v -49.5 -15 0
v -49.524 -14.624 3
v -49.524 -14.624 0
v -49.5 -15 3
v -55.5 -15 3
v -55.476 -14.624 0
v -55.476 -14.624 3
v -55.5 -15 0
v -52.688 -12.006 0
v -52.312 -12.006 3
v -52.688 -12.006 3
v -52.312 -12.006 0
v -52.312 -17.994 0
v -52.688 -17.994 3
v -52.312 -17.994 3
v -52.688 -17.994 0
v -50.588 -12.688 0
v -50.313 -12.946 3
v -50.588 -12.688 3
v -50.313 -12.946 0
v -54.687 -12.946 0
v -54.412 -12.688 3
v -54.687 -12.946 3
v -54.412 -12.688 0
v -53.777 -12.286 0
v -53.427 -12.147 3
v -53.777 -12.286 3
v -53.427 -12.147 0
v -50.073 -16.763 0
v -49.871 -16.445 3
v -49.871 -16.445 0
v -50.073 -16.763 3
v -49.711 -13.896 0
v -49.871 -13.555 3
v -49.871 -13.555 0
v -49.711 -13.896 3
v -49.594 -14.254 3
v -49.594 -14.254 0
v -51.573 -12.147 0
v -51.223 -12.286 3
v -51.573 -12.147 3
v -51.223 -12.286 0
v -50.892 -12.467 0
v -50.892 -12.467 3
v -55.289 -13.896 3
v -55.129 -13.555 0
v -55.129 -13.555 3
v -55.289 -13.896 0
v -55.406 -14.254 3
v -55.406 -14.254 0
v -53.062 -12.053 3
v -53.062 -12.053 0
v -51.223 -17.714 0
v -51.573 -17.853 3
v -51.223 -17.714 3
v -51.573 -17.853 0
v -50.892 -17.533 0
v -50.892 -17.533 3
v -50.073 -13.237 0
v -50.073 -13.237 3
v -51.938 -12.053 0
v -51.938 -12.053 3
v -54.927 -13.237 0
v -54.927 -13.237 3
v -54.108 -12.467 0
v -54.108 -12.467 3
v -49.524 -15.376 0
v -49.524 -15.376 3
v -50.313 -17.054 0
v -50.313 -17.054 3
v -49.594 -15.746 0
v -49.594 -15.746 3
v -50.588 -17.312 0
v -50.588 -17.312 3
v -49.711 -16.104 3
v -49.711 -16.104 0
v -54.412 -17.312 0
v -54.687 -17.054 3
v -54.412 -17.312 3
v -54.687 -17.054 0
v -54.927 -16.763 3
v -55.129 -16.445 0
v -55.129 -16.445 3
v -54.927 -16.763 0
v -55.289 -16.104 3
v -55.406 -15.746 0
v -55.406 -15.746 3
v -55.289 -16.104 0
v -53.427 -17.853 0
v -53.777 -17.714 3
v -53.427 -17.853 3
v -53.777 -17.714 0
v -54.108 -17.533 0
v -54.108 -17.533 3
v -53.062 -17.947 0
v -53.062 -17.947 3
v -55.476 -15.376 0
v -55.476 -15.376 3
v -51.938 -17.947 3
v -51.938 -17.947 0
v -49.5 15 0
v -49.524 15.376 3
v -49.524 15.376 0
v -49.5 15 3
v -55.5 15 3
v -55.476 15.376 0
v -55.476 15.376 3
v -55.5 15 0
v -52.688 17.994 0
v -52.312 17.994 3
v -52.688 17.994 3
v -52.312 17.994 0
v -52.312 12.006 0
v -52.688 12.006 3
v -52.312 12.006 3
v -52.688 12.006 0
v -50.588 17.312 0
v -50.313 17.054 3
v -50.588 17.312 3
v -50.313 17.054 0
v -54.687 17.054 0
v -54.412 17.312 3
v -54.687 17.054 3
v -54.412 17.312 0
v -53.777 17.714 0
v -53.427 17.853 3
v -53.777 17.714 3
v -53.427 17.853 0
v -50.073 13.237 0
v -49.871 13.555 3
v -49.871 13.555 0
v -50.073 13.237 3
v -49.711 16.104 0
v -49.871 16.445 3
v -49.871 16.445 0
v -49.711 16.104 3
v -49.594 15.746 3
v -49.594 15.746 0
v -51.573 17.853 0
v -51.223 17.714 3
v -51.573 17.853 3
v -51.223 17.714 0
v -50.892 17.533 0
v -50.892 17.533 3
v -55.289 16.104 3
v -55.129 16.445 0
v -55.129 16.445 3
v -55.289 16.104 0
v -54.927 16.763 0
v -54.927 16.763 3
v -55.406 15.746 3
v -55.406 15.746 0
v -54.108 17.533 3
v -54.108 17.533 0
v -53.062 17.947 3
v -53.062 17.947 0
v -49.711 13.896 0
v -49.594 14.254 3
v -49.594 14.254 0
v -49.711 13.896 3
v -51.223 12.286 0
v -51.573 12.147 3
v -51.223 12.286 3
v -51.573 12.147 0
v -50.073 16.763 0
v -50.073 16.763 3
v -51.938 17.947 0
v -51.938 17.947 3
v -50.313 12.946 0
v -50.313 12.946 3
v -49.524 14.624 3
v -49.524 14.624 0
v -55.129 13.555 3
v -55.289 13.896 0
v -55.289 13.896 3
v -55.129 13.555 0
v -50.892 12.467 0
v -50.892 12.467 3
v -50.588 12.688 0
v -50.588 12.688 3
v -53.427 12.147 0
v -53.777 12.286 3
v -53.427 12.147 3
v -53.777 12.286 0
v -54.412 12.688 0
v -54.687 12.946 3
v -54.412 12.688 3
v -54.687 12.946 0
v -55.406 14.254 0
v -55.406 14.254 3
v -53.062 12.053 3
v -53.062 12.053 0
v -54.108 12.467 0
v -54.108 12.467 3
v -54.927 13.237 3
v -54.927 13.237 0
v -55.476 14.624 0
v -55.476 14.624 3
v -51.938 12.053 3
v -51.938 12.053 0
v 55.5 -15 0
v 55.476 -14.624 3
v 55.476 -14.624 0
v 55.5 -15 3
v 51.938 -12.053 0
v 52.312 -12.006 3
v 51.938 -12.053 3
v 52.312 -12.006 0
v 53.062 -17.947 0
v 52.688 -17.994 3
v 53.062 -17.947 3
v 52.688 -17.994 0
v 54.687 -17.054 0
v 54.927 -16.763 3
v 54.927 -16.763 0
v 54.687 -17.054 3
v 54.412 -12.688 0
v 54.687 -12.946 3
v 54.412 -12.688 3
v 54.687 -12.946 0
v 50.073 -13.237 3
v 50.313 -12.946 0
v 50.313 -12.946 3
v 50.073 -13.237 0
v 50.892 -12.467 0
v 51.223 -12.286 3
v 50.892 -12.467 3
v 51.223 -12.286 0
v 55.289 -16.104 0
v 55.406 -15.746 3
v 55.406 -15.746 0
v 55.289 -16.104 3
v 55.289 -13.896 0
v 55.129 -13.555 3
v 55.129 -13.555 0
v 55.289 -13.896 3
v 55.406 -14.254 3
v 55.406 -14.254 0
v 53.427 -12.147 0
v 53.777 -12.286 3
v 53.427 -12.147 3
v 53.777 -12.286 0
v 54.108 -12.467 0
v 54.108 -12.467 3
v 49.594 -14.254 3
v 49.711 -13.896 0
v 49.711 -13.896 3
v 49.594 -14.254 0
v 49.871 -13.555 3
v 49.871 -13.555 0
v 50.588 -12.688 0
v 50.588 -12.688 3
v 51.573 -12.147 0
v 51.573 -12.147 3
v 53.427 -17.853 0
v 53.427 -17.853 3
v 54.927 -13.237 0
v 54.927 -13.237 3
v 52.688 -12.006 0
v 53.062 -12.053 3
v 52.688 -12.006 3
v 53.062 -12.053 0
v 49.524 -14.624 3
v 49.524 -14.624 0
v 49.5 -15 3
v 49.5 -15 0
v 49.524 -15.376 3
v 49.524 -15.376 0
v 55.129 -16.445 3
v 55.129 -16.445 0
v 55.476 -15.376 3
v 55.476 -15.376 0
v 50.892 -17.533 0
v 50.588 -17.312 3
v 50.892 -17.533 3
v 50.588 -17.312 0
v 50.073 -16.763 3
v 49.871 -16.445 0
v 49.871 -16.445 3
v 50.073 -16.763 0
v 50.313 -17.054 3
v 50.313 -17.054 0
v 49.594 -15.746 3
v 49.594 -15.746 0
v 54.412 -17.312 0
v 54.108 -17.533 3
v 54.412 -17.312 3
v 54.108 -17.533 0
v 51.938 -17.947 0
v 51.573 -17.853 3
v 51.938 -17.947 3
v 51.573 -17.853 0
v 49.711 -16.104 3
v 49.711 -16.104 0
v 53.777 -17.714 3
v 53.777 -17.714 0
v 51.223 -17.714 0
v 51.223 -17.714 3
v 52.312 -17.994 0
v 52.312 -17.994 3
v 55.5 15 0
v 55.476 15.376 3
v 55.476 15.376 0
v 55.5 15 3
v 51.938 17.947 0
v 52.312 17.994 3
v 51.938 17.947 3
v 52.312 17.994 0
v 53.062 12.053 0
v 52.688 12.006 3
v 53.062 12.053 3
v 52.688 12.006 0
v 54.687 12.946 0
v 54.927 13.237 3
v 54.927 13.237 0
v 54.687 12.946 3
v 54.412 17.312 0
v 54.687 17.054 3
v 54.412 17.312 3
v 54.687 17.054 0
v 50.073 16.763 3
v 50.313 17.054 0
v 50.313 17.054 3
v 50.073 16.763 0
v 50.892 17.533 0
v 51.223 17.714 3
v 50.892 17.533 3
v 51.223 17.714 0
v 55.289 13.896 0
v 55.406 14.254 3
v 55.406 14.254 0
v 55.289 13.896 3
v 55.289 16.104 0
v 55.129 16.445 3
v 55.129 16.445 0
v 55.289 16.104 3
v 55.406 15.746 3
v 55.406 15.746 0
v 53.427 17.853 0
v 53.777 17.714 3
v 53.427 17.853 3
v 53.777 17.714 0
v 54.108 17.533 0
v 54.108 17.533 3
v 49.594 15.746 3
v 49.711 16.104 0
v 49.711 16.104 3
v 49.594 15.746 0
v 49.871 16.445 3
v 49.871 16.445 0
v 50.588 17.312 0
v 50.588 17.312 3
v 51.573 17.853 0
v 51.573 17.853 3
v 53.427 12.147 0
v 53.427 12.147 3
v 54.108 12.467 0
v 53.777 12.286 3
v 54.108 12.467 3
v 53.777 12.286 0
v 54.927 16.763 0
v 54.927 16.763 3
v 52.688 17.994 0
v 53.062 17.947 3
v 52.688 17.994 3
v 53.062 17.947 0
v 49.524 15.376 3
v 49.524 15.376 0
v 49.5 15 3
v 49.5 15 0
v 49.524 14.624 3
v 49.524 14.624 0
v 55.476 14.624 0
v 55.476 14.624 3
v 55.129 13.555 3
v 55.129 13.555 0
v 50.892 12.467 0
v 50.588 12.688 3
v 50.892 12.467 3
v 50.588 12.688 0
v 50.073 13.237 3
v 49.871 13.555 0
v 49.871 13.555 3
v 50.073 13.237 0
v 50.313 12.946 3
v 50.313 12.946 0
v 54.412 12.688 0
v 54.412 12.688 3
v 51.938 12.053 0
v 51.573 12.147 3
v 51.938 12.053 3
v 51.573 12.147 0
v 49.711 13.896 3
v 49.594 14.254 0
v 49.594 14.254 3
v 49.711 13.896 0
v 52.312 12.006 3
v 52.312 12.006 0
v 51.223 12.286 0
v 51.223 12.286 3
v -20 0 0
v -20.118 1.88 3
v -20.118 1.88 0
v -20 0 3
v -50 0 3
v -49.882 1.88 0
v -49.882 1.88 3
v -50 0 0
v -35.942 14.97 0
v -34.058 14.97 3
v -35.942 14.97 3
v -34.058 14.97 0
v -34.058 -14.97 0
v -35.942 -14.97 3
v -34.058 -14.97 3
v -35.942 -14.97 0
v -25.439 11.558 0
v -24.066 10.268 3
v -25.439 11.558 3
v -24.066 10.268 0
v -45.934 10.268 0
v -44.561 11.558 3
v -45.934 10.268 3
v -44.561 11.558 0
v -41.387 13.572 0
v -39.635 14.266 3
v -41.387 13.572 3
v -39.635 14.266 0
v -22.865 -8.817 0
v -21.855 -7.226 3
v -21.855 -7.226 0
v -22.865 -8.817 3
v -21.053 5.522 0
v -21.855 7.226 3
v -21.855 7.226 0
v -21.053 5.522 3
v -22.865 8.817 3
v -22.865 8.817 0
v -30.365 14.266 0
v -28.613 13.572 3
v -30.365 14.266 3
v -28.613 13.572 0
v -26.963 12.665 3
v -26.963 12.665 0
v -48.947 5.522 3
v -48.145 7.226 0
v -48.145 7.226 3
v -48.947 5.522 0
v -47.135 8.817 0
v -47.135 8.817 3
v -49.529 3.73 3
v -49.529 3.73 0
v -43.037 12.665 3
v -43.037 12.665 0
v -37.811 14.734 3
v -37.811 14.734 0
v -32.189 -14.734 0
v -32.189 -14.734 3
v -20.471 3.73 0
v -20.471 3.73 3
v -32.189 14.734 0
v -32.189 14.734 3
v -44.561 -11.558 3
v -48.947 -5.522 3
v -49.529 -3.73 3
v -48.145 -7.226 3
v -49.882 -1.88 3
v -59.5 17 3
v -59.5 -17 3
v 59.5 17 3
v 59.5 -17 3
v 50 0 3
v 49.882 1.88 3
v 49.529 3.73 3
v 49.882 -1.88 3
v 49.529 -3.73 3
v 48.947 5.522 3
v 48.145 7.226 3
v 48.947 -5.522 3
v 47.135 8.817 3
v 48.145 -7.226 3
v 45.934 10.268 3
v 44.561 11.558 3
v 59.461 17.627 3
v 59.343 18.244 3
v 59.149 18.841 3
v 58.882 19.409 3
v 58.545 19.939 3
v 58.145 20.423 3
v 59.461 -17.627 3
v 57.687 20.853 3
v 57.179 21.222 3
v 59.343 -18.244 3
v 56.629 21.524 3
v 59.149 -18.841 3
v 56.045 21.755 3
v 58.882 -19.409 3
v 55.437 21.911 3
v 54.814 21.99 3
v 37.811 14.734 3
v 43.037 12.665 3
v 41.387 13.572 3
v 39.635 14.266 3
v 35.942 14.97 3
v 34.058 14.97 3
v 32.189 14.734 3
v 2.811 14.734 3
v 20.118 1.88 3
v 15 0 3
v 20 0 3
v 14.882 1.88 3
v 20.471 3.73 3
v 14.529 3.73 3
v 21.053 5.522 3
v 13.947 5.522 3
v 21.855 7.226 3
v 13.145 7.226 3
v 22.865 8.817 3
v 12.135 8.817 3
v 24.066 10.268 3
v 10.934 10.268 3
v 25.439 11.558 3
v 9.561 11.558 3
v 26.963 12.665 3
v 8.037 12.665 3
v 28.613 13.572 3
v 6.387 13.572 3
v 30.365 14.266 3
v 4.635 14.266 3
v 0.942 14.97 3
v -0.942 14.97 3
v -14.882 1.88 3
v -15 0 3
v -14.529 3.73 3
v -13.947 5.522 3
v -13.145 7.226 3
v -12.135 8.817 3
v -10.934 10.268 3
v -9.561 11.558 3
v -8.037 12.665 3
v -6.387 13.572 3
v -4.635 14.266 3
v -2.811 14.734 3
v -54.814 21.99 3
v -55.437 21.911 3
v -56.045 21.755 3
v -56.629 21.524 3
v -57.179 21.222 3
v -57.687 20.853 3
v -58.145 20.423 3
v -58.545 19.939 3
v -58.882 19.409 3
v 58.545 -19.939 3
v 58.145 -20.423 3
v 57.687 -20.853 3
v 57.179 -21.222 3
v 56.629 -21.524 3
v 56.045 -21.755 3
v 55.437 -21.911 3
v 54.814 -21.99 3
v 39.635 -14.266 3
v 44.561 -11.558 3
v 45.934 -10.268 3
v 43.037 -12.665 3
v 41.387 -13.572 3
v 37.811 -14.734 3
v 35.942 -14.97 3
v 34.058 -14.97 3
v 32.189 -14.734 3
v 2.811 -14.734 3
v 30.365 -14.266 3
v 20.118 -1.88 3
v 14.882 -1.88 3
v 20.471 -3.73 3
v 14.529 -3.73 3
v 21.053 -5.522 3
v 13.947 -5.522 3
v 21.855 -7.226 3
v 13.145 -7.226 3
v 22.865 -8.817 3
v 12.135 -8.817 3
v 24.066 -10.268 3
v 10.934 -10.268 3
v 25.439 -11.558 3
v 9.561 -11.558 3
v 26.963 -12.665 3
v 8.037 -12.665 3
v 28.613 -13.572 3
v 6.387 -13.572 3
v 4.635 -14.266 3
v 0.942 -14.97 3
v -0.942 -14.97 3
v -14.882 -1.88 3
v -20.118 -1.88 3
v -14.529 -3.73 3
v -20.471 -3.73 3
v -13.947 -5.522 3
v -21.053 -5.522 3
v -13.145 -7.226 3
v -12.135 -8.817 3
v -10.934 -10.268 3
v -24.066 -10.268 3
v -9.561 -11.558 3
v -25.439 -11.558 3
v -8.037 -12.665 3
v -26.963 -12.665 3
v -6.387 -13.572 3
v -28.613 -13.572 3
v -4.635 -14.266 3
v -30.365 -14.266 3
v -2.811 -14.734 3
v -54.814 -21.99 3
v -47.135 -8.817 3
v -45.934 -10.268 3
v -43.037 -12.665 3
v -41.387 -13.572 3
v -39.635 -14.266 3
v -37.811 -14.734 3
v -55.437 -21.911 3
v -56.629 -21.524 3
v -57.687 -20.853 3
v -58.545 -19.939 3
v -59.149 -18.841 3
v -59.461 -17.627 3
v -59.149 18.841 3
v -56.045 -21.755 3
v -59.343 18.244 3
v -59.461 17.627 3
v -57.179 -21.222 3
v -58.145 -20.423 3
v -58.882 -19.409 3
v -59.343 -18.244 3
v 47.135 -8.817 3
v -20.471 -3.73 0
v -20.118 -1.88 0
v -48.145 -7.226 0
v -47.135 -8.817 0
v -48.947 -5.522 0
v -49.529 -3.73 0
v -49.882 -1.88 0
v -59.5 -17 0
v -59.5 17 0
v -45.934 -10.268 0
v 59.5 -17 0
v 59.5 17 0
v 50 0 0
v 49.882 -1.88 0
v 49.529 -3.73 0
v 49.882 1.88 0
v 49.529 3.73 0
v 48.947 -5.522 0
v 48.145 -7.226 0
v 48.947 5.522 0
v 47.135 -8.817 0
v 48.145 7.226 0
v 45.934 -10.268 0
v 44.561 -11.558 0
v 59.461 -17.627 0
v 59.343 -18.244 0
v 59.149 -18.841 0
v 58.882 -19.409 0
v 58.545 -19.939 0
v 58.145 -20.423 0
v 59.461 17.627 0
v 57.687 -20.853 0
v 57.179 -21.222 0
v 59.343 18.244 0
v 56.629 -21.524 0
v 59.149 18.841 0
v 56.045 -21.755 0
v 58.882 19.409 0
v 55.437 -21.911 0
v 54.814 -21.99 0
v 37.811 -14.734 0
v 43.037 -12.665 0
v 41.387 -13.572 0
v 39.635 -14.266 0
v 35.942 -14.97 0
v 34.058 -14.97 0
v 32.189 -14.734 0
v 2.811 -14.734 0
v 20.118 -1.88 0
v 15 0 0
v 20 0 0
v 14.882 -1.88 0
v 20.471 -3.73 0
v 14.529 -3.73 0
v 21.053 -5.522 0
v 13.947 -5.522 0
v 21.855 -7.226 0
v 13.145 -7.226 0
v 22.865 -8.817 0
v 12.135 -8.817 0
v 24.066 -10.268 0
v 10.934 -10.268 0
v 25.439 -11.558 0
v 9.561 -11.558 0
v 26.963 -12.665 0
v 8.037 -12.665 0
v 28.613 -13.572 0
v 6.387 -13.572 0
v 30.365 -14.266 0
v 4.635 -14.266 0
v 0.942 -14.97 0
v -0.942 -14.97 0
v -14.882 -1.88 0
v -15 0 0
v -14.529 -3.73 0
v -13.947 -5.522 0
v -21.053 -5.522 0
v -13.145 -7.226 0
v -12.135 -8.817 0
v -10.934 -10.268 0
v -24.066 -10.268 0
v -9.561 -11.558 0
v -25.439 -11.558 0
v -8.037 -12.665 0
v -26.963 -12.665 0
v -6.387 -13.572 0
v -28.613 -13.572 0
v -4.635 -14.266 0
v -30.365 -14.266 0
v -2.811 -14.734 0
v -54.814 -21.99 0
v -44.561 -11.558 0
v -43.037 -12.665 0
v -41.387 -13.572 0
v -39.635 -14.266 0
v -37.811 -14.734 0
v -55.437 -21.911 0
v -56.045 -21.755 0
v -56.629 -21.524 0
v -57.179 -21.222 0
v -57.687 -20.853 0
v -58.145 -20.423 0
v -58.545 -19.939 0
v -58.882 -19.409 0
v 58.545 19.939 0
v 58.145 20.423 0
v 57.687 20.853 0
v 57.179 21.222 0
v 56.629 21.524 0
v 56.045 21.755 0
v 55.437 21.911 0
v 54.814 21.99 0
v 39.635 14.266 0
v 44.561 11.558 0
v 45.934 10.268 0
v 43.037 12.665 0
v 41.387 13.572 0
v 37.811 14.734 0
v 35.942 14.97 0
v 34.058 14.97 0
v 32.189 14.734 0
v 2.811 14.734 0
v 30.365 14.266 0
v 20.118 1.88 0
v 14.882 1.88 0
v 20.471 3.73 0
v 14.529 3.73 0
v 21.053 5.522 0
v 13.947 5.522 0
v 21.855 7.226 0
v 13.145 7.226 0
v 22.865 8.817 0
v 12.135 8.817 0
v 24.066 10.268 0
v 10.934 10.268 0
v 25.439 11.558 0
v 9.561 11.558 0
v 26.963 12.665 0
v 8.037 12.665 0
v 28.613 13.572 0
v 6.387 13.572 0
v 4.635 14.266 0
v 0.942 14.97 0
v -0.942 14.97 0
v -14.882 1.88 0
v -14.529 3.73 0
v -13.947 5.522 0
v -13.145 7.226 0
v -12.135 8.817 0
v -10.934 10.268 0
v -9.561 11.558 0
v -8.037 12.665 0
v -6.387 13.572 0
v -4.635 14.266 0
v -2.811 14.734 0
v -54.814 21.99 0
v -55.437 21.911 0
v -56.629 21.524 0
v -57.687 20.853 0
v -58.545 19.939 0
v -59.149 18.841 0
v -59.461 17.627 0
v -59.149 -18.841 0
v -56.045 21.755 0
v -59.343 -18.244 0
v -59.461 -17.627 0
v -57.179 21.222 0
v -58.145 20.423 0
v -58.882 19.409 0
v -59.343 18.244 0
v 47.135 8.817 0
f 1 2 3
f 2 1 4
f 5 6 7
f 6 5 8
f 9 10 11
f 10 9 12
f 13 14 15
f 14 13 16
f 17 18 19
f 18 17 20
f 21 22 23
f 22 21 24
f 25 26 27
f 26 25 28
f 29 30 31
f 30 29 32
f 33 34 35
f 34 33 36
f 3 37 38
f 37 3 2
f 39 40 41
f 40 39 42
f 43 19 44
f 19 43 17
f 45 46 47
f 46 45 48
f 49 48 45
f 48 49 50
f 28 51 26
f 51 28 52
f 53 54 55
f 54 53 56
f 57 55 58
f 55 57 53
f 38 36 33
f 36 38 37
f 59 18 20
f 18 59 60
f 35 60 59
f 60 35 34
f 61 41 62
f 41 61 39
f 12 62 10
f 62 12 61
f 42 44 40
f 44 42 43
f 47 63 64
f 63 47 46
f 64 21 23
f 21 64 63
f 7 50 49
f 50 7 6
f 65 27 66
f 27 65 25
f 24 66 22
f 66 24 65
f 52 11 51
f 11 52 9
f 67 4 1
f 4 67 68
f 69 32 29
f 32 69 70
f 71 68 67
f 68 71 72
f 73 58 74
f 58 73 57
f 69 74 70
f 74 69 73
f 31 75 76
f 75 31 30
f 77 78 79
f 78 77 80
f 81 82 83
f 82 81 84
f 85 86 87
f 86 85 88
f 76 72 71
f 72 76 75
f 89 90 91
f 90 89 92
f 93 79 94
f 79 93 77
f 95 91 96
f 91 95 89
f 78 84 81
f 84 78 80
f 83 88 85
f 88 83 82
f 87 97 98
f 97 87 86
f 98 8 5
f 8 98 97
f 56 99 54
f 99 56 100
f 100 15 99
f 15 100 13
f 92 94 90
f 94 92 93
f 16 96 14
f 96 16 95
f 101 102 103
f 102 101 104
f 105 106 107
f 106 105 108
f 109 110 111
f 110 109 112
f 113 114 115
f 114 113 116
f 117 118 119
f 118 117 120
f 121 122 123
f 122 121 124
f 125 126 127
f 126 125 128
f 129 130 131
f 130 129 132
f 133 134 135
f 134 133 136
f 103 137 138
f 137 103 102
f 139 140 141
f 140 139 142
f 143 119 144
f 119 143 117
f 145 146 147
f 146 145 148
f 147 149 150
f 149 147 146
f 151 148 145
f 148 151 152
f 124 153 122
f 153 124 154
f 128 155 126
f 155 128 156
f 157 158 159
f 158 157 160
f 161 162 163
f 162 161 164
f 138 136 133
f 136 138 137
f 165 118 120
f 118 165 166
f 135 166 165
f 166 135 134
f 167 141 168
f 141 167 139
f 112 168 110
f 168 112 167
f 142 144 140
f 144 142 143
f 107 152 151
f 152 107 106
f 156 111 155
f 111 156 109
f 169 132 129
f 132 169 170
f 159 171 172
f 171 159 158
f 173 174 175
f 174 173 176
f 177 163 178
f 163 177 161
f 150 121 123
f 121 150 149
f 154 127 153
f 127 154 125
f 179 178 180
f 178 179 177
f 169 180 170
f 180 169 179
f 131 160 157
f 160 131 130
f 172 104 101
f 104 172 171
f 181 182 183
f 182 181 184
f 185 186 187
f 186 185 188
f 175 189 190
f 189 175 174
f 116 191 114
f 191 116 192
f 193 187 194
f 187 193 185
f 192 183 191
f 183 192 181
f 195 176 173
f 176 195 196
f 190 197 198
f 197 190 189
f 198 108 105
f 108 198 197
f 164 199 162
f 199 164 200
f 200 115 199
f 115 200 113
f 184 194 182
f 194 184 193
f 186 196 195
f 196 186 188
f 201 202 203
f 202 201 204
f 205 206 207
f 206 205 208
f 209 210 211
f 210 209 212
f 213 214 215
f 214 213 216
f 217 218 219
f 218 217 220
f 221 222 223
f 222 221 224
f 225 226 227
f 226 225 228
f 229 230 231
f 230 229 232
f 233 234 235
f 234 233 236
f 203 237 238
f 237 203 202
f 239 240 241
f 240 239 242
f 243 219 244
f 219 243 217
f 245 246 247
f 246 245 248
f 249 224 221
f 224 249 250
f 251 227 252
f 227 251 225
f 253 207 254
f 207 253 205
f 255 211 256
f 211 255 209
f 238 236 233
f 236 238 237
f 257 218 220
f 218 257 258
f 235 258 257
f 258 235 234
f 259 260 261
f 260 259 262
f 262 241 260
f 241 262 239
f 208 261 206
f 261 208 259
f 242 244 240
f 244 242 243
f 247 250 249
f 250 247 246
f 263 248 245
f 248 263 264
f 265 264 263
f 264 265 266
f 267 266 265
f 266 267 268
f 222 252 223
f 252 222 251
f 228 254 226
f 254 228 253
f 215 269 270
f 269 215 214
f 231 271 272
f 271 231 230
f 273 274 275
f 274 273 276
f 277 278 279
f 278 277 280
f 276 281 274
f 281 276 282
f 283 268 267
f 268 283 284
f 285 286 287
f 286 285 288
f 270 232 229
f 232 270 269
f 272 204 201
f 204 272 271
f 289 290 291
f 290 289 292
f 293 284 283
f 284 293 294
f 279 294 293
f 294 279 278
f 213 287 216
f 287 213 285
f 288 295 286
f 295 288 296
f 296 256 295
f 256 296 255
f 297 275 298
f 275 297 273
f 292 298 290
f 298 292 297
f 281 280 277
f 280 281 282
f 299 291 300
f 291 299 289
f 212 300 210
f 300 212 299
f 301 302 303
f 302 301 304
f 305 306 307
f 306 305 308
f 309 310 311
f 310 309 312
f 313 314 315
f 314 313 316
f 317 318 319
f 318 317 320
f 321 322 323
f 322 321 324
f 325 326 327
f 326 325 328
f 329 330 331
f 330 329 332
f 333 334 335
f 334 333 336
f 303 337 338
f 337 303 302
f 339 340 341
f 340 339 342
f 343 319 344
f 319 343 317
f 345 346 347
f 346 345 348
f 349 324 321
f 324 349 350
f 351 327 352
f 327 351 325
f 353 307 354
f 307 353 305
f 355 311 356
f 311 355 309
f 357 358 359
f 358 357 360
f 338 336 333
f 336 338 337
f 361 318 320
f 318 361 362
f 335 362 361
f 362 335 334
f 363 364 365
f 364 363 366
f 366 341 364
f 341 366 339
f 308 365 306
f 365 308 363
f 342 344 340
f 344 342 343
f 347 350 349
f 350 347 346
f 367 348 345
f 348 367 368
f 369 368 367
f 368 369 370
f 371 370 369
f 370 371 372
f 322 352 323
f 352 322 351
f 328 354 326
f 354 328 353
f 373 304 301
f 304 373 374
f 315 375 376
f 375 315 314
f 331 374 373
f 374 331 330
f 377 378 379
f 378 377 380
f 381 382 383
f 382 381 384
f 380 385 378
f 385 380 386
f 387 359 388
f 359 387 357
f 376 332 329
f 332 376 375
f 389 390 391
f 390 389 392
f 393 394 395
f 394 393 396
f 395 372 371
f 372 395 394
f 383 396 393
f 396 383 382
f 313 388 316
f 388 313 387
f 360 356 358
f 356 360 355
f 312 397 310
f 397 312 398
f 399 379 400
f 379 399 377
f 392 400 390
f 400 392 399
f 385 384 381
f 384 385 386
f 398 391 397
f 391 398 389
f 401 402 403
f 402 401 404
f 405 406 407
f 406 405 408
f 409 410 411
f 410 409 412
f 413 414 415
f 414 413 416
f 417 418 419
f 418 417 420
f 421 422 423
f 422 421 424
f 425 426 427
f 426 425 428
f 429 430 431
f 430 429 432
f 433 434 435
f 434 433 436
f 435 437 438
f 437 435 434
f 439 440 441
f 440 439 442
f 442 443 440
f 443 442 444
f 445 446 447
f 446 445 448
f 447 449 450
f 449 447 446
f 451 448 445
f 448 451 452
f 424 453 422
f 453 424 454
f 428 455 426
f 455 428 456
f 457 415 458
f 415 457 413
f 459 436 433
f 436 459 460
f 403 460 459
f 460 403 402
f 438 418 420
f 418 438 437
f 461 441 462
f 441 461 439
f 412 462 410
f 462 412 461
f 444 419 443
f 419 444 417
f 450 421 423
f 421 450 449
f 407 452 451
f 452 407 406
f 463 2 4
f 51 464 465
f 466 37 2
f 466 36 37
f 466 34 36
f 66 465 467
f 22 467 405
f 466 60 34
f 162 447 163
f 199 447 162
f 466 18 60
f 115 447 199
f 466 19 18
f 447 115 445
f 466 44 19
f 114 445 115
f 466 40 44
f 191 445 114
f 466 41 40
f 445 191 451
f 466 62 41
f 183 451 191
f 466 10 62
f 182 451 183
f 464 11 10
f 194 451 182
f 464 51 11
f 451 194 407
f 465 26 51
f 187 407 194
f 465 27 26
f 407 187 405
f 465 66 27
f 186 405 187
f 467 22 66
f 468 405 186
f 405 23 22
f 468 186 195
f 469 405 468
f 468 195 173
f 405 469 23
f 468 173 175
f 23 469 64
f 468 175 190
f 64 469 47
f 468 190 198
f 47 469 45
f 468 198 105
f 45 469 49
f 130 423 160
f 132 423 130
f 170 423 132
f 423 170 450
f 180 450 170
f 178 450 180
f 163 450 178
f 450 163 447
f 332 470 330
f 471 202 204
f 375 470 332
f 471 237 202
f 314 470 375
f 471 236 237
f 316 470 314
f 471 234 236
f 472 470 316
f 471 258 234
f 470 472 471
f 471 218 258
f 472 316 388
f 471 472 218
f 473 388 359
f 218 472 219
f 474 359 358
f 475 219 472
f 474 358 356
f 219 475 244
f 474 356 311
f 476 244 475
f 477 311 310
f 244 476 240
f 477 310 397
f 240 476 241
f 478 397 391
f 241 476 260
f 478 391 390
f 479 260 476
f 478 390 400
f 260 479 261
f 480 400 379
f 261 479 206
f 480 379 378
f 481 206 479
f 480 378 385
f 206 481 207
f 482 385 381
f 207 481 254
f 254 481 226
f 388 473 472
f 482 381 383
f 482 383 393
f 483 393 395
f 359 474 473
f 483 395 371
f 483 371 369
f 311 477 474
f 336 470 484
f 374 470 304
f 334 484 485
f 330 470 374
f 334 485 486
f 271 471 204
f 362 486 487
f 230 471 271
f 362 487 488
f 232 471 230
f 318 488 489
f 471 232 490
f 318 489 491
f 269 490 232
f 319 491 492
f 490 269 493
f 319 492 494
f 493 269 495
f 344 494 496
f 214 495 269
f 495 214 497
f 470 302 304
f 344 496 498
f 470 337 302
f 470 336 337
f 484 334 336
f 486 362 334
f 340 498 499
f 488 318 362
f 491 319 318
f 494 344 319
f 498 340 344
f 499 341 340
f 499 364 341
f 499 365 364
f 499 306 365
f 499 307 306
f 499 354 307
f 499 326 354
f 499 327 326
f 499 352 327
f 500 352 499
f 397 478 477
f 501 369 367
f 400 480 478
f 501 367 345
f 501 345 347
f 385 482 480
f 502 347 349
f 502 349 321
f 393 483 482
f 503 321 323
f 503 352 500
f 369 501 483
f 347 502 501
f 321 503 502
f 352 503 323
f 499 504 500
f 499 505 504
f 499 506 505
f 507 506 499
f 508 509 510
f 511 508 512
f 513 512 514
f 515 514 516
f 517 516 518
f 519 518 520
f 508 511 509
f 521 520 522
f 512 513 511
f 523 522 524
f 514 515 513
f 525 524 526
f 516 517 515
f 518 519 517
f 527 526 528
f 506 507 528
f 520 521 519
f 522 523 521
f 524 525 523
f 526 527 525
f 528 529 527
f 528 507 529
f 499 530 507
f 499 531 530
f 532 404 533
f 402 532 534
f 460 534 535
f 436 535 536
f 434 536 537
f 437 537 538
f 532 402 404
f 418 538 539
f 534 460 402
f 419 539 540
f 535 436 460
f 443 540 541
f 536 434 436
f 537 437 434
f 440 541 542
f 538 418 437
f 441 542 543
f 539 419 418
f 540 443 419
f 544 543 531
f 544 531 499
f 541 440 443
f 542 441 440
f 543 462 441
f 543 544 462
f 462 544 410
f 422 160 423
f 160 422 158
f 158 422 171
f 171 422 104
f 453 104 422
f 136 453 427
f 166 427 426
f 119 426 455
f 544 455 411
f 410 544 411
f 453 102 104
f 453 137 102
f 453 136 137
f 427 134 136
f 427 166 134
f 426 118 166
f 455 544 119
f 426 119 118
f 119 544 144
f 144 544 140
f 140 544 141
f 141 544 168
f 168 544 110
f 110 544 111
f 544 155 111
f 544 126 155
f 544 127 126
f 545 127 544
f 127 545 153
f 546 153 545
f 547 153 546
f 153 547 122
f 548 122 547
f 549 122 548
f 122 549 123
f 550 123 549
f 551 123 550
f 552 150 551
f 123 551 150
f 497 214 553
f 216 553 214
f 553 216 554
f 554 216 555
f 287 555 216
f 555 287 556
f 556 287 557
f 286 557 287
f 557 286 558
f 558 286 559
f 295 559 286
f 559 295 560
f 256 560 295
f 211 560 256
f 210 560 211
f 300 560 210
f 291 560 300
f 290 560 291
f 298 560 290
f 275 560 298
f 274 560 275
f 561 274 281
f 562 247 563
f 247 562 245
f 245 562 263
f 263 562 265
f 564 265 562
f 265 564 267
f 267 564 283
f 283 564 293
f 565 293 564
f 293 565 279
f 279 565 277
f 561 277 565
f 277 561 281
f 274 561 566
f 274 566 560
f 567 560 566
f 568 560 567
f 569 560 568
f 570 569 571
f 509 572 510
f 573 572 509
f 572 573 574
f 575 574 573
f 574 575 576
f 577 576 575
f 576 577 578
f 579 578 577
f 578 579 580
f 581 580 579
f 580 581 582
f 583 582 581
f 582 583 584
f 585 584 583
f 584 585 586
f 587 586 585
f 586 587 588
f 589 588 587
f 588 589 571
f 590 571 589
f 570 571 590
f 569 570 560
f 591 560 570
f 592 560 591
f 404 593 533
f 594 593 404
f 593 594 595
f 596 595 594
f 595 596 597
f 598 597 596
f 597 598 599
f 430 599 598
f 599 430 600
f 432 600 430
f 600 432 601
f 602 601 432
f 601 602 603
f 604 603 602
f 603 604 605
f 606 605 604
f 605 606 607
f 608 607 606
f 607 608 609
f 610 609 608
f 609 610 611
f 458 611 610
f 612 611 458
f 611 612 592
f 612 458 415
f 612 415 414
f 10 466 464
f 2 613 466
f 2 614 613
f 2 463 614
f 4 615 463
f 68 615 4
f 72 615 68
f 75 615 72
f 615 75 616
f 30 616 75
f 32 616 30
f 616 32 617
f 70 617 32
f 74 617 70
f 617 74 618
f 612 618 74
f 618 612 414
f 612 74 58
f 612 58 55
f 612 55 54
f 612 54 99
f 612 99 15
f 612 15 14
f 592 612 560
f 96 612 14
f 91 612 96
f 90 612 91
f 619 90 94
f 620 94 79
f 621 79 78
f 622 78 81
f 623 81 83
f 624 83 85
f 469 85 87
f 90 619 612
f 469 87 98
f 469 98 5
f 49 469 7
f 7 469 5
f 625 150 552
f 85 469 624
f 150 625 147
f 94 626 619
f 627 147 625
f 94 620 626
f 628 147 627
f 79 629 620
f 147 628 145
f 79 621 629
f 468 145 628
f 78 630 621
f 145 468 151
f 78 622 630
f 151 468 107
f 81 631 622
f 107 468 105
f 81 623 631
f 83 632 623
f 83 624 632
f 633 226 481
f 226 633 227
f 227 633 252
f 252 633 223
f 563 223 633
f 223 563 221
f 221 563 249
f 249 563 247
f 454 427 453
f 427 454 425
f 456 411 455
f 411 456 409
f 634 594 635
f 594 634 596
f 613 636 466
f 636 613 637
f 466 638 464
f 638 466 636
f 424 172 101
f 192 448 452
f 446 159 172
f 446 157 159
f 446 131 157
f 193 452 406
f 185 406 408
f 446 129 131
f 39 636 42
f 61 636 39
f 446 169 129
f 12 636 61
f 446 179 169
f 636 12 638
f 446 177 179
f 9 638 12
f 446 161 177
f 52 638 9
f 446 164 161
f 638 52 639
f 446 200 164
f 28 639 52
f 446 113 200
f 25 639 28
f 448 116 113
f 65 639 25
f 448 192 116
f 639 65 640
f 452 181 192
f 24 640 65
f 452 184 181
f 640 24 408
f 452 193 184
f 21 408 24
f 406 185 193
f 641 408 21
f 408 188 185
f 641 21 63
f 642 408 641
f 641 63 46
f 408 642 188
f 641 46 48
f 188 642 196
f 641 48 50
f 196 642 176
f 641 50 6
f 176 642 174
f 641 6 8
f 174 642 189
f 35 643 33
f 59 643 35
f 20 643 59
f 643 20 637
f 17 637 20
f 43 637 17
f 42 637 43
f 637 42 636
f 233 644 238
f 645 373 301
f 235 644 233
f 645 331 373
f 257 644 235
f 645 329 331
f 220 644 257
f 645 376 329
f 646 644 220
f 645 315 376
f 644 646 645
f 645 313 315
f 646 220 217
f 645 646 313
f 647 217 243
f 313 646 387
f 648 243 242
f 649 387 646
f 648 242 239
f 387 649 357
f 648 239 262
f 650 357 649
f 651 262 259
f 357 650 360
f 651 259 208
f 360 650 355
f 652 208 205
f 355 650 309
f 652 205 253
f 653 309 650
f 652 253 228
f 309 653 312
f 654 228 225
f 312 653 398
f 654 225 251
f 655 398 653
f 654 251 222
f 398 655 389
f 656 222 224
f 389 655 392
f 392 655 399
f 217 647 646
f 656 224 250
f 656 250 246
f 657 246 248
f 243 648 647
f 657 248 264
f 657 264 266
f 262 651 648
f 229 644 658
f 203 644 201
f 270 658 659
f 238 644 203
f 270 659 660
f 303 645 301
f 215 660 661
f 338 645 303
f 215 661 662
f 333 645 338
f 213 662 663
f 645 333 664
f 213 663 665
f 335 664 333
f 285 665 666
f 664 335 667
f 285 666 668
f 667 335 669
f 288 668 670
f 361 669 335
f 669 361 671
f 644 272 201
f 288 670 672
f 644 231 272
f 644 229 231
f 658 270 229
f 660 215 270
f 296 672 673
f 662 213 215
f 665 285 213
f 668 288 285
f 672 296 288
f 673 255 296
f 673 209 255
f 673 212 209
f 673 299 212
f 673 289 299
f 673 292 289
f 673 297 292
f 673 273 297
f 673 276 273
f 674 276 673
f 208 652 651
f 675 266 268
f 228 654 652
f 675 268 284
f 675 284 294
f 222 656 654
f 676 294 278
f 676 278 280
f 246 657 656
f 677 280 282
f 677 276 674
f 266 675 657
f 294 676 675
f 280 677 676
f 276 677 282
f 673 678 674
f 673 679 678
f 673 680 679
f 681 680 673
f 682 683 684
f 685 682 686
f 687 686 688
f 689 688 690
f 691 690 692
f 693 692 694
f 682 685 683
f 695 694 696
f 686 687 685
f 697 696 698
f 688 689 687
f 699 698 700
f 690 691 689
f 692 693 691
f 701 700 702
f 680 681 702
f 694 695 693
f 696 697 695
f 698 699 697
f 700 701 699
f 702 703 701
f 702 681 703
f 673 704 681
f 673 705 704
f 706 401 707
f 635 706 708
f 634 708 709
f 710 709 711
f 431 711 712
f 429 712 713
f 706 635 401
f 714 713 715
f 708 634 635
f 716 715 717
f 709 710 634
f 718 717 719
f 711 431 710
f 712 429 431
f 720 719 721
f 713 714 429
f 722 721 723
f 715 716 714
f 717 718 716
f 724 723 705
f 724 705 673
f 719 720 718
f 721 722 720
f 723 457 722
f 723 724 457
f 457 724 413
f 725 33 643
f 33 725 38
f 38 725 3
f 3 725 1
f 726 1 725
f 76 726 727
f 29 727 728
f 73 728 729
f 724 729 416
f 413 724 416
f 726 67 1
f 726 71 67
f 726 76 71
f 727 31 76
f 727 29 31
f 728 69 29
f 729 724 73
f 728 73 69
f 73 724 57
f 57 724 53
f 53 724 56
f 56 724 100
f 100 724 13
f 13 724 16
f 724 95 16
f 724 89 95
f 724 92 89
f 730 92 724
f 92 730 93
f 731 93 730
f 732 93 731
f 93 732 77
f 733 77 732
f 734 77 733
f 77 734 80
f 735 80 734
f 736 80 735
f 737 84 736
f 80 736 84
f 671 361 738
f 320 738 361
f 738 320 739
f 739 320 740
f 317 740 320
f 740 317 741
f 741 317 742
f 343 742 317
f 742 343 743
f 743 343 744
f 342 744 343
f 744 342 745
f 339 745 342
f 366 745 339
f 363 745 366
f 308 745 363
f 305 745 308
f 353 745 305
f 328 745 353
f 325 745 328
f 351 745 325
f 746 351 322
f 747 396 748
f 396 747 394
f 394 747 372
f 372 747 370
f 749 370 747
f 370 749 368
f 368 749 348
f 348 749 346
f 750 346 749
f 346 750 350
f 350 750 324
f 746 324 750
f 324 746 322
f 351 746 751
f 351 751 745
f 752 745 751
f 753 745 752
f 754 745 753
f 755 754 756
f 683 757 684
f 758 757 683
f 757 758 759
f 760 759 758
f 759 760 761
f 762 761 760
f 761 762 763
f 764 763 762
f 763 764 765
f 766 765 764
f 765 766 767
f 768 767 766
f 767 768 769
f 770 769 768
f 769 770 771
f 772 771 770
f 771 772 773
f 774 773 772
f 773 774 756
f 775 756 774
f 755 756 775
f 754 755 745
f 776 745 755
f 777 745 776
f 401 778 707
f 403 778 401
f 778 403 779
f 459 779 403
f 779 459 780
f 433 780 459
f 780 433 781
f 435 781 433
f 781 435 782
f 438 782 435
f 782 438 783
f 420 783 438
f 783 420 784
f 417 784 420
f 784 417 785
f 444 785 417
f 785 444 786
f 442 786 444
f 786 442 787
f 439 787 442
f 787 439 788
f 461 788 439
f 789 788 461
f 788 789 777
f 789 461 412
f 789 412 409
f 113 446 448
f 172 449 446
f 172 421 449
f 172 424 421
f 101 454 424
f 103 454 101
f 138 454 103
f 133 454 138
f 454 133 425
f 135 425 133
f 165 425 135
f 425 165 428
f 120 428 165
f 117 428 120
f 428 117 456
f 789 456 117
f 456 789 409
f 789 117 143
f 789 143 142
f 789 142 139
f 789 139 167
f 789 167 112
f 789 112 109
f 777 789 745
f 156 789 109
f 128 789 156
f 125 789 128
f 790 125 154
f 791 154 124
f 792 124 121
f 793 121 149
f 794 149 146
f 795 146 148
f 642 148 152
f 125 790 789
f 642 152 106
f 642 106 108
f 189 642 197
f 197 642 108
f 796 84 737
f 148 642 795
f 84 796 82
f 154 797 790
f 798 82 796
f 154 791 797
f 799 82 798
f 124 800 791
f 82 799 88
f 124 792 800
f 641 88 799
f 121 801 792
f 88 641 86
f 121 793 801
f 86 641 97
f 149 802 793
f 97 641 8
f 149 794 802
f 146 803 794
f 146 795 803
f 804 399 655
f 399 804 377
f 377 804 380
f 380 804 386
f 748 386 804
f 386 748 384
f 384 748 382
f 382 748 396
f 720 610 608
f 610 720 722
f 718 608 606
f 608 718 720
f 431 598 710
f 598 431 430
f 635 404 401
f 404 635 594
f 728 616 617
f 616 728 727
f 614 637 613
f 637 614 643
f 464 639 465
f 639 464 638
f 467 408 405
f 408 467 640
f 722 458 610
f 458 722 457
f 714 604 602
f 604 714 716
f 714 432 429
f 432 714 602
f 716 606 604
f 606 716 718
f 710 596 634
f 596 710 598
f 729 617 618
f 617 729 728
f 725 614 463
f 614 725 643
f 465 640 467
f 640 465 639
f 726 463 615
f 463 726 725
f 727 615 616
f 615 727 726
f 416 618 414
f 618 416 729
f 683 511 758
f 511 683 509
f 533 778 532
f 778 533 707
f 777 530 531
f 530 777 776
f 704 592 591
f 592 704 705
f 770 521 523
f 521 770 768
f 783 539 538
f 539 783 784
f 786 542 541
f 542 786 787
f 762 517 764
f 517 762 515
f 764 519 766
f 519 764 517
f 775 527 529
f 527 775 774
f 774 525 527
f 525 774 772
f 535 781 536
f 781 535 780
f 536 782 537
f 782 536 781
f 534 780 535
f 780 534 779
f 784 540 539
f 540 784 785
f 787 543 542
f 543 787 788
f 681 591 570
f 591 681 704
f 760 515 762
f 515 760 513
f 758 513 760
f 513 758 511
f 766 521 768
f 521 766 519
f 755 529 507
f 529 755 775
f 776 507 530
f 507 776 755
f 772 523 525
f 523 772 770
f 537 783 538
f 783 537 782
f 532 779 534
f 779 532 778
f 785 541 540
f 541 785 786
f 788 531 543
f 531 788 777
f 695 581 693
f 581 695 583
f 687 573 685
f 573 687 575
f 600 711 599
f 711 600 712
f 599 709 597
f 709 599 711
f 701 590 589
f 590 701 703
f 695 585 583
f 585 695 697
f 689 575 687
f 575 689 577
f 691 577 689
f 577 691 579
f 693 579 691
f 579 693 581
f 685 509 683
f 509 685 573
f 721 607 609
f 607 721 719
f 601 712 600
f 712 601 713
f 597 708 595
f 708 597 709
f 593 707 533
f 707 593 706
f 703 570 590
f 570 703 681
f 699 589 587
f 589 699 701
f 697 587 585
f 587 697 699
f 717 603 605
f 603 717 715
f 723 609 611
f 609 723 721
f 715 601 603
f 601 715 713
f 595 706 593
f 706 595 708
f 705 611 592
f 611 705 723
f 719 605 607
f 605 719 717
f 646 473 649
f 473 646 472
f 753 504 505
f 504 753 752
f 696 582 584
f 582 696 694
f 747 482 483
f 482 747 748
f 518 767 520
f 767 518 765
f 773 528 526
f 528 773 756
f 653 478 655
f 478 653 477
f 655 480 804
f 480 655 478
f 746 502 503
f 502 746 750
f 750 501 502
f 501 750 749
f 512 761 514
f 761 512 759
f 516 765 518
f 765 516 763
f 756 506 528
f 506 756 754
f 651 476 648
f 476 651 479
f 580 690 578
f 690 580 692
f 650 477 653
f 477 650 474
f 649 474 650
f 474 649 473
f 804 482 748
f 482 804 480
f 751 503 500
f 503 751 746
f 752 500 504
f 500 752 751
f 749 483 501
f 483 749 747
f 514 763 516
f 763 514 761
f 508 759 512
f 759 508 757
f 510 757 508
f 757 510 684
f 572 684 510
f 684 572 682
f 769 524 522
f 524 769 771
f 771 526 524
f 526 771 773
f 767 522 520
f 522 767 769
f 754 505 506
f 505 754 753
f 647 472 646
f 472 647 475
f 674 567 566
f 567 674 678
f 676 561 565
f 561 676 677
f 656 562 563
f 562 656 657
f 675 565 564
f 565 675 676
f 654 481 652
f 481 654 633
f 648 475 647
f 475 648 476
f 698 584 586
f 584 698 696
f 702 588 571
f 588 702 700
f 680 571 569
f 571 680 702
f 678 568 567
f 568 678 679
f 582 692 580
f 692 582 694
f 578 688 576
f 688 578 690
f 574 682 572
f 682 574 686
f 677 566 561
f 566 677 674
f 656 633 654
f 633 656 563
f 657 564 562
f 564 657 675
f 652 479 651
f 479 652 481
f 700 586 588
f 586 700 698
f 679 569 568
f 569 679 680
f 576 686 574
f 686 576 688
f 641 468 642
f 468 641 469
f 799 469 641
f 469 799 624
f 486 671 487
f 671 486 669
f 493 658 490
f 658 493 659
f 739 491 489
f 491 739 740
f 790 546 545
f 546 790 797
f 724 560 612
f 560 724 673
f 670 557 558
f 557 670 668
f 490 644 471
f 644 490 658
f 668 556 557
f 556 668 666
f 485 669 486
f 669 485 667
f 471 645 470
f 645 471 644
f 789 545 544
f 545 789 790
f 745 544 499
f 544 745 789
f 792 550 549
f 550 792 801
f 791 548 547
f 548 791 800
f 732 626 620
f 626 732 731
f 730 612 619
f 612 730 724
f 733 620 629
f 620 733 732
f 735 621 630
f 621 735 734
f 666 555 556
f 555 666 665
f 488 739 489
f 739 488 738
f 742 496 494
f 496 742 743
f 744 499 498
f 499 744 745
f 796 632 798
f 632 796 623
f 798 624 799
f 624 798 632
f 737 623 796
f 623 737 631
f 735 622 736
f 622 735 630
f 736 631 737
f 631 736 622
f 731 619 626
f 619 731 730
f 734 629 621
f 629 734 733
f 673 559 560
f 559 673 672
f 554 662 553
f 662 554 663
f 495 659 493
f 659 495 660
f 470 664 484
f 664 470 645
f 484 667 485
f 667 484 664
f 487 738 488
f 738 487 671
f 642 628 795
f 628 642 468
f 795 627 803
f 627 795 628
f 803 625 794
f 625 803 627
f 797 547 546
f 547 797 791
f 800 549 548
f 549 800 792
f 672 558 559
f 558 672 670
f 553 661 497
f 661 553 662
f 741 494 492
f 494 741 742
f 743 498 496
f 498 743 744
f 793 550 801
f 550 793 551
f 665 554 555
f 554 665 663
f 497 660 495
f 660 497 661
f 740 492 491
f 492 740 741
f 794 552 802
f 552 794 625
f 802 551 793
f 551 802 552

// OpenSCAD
$fn = 50;


difference() {
	union() {
		hull() {
			translate(v = [-54.5000000000, 17.0000000000, 0]) {
				cylinder(h = 3, r = 5);
			}
			translate(v = [54.5000000000, 17.0000000000, 0]) {
				cylinder(h = 3, r = 5);
			}
			translate(v = [-54.5000000000, -17.0000000000, 0]) {
				cylinder(h = 3, r = 5);
			}
			translate(v = [54.5000000000, -17.0000000000, 0]) {
				cylinder(h = 3, r = 5);
			}
		}
	}
	union() {
		#translate(v = [-52.5000000000, -15.0000000000, -100.0000000000]) {
			cylinder(h = 200, r = 3.0000000000);
		}
		#translate(v = [-52.5000000000, 15.0000000000, -100.0000000000]) {
			cylinder(h = 200, r = 3.0000000000);
		}
		#translate(v = [52.5000000000, -15.0000000000, -100.0000000000]) {
			cylinder(h = 200, r = 3.0000000000);
		}
		#translate(v = [52.5000000000, 15.0000000000, -100.0000000000]) {
			cylinder(h = 200, r = 3.0000000000);
		}
		#translate(v = [-35.0000000000, 0, 0]) {
			cylinder(h = 3, r = 15.0000000000);
		}
		#cylinder(h = 3, r = 15.0000000000);
		#translate(v = [35.0000000000, 0, 0]) {
			cylinder(h = 3, r = 15.0000000000);
		}
	}
}
